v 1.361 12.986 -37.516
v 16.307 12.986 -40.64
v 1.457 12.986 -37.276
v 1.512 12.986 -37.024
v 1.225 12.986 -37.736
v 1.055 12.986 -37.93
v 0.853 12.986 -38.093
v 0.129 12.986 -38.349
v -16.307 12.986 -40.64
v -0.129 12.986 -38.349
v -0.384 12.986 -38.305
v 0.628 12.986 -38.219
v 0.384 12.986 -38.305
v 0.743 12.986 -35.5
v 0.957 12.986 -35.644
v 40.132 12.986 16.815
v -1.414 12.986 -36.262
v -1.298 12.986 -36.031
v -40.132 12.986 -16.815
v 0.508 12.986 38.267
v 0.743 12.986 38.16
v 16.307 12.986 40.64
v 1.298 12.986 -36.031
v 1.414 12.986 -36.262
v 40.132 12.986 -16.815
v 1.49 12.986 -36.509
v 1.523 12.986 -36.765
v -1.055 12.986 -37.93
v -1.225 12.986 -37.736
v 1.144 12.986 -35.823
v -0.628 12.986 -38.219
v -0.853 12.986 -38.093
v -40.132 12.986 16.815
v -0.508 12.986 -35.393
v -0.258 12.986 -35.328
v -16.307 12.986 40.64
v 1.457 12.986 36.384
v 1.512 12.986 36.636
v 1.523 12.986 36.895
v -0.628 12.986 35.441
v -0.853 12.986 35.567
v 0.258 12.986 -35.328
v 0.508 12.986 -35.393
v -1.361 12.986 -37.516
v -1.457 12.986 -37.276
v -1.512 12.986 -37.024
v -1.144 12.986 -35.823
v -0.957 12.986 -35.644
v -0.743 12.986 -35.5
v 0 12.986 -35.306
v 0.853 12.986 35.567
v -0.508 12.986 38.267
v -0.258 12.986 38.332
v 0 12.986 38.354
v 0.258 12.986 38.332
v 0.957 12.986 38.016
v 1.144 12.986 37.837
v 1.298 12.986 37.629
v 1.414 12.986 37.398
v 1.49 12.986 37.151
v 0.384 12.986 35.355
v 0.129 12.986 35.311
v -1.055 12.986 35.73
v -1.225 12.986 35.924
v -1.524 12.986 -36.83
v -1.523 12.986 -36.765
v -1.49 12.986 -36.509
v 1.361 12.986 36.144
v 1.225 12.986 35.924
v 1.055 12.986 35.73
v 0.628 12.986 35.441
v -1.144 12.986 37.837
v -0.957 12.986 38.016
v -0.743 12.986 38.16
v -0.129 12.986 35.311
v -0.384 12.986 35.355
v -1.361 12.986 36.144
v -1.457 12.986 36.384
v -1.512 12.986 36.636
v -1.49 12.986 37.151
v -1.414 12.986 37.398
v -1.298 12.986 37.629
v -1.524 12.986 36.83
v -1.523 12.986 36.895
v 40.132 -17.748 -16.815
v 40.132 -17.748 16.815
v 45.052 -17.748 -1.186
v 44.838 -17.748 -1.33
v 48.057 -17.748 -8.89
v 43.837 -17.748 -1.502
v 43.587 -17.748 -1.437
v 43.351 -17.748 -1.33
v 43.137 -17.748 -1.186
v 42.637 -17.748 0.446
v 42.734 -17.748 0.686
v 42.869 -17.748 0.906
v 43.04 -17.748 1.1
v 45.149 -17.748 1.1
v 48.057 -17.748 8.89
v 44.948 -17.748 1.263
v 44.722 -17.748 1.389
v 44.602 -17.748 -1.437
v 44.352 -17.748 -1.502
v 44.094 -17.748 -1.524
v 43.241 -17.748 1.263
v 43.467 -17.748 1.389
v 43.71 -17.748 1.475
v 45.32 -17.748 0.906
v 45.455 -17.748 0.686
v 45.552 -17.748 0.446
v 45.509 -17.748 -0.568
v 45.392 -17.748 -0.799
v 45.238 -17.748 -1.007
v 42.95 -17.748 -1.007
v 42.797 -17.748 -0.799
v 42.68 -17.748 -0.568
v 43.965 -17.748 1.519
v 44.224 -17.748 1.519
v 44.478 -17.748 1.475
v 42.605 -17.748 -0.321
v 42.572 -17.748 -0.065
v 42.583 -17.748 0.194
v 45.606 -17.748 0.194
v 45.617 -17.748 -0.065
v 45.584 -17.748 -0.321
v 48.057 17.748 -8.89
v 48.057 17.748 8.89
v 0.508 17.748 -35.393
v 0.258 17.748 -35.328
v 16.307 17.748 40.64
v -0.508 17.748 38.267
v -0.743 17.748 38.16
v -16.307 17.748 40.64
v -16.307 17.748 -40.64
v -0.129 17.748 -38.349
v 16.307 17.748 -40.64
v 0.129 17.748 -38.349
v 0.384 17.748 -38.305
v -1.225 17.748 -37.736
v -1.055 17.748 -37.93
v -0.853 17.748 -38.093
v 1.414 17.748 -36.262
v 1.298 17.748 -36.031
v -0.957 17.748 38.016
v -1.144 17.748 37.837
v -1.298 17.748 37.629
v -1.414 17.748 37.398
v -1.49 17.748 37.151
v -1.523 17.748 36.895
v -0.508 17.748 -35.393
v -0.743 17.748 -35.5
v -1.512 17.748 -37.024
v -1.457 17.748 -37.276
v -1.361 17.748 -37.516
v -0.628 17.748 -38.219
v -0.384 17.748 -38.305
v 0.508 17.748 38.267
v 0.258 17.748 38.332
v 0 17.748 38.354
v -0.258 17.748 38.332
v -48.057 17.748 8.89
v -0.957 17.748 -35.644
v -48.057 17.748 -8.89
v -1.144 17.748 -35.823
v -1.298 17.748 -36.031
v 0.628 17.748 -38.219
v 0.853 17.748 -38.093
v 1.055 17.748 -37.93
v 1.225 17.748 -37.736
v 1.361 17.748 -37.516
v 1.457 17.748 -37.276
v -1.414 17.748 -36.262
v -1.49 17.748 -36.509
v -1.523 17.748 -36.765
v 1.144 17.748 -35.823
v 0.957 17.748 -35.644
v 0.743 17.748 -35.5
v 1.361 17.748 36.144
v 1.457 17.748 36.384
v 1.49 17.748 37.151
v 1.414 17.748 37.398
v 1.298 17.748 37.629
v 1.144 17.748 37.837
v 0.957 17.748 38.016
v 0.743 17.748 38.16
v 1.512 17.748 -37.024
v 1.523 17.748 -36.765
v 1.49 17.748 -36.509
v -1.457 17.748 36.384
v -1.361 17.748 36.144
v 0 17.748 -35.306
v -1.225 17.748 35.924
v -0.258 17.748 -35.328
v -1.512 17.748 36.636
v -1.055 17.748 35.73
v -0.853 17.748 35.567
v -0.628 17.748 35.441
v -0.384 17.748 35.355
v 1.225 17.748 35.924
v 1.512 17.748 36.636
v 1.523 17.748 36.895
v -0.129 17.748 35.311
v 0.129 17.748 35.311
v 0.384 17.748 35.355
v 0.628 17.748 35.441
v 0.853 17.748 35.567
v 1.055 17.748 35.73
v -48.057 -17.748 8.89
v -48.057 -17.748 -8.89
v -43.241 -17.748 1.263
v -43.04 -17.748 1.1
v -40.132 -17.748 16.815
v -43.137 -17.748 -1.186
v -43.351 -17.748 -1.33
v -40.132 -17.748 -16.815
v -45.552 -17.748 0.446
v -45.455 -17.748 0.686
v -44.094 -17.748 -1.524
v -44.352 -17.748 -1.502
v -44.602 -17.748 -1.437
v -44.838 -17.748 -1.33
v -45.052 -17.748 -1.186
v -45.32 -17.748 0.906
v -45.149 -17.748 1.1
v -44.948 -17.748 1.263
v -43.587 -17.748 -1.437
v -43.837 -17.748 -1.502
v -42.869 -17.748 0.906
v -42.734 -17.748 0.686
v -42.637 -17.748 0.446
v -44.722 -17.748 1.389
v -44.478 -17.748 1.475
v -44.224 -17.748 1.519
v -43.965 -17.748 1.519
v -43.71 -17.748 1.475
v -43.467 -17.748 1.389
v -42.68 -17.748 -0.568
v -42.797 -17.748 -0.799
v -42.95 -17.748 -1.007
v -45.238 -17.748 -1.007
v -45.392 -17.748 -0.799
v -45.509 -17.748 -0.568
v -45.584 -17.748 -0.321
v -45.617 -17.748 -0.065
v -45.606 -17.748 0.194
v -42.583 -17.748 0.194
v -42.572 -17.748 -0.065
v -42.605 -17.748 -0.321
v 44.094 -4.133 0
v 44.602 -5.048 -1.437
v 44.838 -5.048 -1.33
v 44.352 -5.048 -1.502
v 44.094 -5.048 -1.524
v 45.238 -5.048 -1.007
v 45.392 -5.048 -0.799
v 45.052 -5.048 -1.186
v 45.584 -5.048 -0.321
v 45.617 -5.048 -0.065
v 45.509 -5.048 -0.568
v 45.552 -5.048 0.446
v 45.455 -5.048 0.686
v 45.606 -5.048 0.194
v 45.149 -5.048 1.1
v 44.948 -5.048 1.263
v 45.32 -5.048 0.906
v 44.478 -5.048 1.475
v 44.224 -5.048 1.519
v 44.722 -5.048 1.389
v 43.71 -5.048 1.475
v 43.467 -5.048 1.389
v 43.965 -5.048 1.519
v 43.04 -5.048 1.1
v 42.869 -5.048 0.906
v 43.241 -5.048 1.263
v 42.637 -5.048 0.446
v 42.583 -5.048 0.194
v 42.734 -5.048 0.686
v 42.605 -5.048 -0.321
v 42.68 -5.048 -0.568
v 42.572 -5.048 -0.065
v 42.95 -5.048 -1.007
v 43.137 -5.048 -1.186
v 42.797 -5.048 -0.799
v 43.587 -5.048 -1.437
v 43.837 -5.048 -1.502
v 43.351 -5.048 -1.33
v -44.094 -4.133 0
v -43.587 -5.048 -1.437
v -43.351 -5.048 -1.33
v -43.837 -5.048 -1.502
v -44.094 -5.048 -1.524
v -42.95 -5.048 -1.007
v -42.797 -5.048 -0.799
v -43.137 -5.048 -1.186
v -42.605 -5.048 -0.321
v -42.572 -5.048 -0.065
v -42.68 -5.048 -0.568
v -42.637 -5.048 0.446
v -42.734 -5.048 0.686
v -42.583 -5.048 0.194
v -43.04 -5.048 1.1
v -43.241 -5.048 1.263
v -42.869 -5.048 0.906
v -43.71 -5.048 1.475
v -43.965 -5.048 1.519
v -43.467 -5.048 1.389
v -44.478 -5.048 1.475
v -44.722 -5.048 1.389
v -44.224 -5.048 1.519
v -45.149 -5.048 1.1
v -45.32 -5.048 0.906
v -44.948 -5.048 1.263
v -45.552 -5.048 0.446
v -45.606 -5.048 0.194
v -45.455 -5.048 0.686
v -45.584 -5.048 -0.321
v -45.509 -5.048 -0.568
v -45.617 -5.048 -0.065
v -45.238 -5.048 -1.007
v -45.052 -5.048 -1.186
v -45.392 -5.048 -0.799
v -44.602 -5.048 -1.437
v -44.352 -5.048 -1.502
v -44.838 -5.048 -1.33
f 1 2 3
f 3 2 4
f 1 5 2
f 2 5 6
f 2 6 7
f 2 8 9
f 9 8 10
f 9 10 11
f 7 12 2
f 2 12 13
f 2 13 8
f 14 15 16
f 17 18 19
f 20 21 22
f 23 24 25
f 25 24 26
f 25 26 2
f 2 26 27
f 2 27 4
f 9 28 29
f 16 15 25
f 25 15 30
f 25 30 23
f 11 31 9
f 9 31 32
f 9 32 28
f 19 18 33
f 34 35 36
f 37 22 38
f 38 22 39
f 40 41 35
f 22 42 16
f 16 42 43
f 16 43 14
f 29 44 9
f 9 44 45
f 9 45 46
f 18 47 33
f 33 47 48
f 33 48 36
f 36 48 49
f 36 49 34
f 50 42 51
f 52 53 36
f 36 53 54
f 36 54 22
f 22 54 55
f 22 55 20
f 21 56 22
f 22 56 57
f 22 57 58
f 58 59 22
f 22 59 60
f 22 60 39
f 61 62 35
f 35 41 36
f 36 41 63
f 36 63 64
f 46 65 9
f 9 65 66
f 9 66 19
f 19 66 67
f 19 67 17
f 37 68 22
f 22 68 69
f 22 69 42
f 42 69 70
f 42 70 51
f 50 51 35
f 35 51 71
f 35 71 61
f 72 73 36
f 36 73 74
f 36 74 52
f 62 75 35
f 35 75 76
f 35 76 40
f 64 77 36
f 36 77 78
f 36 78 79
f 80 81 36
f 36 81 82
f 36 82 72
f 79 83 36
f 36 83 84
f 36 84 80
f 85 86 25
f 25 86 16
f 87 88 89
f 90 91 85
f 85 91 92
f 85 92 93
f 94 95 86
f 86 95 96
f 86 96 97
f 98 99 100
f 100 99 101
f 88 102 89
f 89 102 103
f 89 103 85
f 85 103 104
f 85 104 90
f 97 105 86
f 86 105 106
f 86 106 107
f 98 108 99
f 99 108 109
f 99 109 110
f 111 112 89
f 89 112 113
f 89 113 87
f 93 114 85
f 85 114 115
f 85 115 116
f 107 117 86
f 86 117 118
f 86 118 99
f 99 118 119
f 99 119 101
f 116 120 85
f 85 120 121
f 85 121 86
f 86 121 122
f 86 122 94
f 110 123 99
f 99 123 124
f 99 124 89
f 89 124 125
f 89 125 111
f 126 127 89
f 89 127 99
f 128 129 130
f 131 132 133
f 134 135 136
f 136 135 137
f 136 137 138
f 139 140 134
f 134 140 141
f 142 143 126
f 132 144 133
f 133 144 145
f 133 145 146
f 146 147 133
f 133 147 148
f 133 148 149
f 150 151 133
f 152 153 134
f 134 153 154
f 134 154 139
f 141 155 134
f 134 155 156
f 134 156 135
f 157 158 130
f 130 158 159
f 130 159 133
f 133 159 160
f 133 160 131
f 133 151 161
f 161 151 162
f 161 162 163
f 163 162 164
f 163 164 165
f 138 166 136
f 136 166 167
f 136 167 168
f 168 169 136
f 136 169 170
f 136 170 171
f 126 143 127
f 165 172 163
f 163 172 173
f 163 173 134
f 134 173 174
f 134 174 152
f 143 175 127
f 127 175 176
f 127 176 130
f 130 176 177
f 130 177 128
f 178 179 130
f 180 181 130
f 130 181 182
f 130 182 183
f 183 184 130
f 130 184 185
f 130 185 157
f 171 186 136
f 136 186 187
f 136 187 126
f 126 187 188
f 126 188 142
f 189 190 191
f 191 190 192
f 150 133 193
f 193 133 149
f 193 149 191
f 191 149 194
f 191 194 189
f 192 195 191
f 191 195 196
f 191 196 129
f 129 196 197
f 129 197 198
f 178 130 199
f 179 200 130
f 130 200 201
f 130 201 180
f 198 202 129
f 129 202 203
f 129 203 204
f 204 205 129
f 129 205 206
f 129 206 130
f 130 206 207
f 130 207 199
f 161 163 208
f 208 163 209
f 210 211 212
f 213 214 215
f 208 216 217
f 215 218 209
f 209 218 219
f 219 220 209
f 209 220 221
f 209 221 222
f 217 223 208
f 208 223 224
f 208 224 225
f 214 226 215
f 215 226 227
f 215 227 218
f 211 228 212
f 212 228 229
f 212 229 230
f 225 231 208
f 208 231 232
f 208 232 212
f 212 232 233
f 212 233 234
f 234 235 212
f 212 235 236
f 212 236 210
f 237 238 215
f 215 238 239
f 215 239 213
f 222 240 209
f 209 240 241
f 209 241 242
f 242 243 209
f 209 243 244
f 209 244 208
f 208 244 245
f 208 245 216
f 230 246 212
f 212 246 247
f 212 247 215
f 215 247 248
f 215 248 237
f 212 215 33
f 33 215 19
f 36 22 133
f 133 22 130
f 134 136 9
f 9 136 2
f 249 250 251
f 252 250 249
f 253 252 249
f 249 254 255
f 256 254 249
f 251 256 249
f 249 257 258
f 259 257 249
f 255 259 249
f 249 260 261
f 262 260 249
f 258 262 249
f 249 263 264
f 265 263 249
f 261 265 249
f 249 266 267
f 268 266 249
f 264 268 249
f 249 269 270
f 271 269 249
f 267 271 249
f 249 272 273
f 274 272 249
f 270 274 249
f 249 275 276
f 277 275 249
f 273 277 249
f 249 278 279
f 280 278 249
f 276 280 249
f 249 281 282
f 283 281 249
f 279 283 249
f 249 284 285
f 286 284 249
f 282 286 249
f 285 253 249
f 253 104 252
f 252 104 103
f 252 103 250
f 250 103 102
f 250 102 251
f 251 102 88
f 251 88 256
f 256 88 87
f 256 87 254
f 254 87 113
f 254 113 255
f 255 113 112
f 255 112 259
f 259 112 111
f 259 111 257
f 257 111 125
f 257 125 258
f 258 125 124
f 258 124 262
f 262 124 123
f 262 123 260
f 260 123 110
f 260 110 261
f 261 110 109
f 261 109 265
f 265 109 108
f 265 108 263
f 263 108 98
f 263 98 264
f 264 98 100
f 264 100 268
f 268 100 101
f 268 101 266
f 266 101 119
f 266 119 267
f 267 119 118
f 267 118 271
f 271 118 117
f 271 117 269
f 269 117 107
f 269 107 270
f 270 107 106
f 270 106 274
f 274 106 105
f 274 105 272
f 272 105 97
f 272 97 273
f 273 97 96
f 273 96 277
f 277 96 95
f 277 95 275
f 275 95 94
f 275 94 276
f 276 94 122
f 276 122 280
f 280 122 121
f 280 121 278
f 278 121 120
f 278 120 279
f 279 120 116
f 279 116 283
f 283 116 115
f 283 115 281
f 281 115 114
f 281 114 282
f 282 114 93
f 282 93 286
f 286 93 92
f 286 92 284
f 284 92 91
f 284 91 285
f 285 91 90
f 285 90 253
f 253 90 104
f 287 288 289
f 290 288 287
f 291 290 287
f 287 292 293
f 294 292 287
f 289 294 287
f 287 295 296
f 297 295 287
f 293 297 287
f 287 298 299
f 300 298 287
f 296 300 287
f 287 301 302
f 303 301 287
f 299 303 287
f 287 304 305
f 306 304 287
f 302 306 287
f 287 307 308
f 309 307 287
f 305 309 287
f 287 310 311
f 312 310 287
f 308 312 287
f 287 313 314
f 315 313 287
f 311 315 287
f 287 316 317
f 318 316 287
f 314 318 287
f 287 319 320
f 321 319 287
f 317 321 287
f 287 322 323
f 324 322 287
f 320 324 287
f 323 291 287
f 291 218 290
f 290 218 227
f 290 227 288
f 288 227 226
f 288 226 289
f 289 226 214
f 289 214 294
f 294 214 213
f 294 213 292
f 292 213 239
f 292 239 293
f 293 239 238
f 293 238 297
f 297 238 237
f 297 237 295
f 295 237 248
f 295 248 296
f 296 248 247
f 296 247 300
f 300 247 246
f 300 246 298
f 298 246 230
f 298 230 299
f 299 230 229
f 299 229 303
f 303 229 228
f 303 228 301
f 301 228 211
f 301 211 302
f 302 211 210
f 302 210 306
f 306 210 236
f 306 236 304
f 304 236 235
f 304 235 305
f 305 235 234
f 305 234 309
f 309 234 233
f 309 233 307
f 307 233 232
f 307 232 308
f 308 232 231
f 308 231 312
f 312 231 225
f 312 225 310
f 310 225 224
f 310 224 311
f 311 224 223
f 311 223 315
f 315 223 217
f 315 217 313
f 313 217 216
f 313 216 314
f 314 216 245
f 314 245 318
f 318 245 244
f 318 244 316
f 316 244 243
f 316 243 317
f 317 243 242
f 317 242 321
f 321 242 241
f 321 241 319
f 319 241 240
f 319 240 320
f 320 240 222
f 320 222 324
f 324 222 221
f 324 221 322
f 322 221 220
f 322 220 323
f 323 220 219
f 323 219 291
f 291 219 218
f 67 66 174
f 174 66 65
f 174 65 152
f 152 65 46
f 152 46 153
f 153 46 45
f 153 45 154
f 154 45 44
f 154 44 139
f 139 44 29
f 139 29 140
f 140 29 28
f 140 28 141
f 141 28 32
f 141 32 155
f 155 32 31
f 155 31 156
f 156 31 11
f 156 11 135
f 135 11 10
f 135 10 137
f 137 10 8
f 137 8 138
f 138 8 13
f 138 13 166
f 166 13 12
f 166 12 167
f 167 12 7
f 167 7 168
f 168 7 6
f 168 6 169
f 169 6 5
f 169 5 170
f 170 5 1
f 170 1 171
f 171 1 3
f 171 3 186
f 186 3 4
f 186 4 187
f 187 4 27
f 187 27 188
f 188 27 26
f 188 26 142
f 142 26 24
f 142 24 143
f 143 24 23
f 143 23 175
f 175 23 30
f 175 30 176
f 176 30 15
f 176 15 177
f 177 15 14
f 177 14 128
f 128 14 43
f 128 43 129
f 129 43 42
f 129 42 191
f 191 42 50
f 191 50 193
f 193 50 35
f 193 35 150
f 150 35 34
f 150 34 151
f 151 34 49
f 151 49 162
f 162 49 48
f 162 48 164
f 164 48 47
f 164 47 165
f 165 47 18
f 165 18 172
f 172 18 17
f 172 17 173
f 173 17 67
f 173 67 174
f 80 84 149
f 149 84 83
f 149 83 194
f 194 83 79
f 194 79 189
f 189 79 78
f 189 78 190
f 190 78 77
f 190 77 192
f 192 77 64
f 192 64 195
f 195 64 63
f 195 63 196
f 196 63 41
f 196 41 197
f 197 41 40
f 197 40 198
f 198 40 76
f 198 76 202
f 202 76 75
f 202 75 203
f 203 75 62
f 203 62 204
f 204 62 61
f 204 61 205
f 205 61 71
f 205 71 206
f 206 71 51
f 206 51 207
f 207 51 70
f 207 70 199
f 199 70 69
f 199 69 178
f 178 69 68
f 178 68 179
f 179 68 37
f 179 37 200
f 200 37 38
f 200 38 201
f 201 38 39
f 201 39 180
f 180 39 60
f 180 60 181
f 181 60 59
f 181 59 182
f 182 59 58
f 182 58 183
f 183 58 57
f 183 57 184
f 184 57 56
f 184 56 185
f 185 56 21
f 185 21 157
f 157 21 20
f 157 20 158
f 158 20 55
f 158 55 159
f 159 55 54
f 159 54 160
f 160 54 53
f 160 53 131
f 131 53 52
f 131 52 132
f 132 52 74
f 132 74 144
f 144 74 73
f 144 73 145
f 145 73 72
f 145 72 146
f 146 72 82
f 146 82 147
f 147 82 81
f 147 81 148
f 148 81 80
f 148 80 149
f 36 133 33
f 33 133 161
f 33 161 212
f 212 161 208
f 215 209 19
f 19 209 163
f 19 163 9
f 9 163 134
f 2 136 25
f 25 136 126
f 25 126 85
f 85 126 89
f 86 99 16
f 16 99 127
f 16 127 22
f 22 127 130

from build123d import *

# Parameters (mm, degrees)
BOSS_EXTRUDE1_DEPTH            = 40.64
F_31_0_12_DIAMETER_HOLE2_D     = 3.048
F_31_0_12_DIAMETER_HOLE2_DEPTH = 12.7
F_31_0_12_DIAMETER_HOLE2_TIP   = 0.915711583
F_31_0_12_DIAMETER_HOLE1_D     = 3.048
F_31_0_12_DIAMETER_HOLE1_DEPTH = 12.7
F_31_0_12_DIAMETER_HOLE1_TIP   = 0.915711583
CHAMFER1_SIZE                  = 31.75


with BuildPart() as part:
    # Sketch1 → Boss-Extrude1 (new, symmetric)
    with BuildSketch(Plane.XY):
        Polygon((48.0568, 17.74825), (-48.0568, 17.74825), (-48.0568, -17.74825), (-40.132, -17.74825), (-40.132, 12.98575), (40.132, 12.98575), (40.132, -17.74825), (48.0568, -17.74825), align=None)
    extrude(amount=BOSS_EXTRUDE1_DEPTH, both=True)

    # #31 (0.12) Diameter Hole2
    with Locations(Plane(origin=(0, -17.74825, 0), x_dir=(-1, 0, 0), z_dir=(0, -1, 0))):
        with Locations((-44.0944, 0), (44.0944, 0)):
            Hole(F_31_0_12_DIAMETER_HOLE2_D / 2, depth=F_31_0_12_DIAMETER_HOLE2_DEPTH)
            with Locations((0, 0, -(F_31_0_12_DIAMETER_HOLE2_DEPTH + F_31_0_12_DIAMETER_HOLE2_TIP / 2))):  # 118° drill point
                Cone(0, F_31_0_12_DIAMETER_HOLE2_D / 2, F_31_0_12_DIAMETER_HOLE2_TIP, mode=Mode.SUBTRACT)

    # #31 (0.12) Diameter Hole1
    with Locations(Plane(origin=(0, 17.74825, 0), x_dir=(1, 0, 0), z_dir=(0, 1, 0))):
        with Locations((0, -36.83), (0, 36.83)):
            Hole(F_31_0_12_DIAMETER_HOLE1_D / 2, depth=F_31_0_12_DIAMETER_HOLE1_DEPTH)
            with Locations((0, 0, -(F_31_0_12_DIAMETER_HOLE1_DEPTH + F_31_0_12_DIAMETER_HOLE1_TIP / 2))):  # 118° drill point
                Cone(0, F_31_0_12_DIAMETER_HOLE1_D / 2, F_31_0_12_DIAMETER_HOLE1_TIP, mode=Mode.SUBTRACT)

    # Chamfer1
    chamfer1_edges = [part.edges().sort_by_distance(p)[0] for p in [
        (-48.0568, 0, 40.64),
        (-48.0568, 0, -40.64),
        (48.0568, 0, -40.64),
        (48.0568, 0, 40.64),
    ]]
    chamfer(chamfer1_edges, length=CHAMFER1_SIZE)


solid = part.part
